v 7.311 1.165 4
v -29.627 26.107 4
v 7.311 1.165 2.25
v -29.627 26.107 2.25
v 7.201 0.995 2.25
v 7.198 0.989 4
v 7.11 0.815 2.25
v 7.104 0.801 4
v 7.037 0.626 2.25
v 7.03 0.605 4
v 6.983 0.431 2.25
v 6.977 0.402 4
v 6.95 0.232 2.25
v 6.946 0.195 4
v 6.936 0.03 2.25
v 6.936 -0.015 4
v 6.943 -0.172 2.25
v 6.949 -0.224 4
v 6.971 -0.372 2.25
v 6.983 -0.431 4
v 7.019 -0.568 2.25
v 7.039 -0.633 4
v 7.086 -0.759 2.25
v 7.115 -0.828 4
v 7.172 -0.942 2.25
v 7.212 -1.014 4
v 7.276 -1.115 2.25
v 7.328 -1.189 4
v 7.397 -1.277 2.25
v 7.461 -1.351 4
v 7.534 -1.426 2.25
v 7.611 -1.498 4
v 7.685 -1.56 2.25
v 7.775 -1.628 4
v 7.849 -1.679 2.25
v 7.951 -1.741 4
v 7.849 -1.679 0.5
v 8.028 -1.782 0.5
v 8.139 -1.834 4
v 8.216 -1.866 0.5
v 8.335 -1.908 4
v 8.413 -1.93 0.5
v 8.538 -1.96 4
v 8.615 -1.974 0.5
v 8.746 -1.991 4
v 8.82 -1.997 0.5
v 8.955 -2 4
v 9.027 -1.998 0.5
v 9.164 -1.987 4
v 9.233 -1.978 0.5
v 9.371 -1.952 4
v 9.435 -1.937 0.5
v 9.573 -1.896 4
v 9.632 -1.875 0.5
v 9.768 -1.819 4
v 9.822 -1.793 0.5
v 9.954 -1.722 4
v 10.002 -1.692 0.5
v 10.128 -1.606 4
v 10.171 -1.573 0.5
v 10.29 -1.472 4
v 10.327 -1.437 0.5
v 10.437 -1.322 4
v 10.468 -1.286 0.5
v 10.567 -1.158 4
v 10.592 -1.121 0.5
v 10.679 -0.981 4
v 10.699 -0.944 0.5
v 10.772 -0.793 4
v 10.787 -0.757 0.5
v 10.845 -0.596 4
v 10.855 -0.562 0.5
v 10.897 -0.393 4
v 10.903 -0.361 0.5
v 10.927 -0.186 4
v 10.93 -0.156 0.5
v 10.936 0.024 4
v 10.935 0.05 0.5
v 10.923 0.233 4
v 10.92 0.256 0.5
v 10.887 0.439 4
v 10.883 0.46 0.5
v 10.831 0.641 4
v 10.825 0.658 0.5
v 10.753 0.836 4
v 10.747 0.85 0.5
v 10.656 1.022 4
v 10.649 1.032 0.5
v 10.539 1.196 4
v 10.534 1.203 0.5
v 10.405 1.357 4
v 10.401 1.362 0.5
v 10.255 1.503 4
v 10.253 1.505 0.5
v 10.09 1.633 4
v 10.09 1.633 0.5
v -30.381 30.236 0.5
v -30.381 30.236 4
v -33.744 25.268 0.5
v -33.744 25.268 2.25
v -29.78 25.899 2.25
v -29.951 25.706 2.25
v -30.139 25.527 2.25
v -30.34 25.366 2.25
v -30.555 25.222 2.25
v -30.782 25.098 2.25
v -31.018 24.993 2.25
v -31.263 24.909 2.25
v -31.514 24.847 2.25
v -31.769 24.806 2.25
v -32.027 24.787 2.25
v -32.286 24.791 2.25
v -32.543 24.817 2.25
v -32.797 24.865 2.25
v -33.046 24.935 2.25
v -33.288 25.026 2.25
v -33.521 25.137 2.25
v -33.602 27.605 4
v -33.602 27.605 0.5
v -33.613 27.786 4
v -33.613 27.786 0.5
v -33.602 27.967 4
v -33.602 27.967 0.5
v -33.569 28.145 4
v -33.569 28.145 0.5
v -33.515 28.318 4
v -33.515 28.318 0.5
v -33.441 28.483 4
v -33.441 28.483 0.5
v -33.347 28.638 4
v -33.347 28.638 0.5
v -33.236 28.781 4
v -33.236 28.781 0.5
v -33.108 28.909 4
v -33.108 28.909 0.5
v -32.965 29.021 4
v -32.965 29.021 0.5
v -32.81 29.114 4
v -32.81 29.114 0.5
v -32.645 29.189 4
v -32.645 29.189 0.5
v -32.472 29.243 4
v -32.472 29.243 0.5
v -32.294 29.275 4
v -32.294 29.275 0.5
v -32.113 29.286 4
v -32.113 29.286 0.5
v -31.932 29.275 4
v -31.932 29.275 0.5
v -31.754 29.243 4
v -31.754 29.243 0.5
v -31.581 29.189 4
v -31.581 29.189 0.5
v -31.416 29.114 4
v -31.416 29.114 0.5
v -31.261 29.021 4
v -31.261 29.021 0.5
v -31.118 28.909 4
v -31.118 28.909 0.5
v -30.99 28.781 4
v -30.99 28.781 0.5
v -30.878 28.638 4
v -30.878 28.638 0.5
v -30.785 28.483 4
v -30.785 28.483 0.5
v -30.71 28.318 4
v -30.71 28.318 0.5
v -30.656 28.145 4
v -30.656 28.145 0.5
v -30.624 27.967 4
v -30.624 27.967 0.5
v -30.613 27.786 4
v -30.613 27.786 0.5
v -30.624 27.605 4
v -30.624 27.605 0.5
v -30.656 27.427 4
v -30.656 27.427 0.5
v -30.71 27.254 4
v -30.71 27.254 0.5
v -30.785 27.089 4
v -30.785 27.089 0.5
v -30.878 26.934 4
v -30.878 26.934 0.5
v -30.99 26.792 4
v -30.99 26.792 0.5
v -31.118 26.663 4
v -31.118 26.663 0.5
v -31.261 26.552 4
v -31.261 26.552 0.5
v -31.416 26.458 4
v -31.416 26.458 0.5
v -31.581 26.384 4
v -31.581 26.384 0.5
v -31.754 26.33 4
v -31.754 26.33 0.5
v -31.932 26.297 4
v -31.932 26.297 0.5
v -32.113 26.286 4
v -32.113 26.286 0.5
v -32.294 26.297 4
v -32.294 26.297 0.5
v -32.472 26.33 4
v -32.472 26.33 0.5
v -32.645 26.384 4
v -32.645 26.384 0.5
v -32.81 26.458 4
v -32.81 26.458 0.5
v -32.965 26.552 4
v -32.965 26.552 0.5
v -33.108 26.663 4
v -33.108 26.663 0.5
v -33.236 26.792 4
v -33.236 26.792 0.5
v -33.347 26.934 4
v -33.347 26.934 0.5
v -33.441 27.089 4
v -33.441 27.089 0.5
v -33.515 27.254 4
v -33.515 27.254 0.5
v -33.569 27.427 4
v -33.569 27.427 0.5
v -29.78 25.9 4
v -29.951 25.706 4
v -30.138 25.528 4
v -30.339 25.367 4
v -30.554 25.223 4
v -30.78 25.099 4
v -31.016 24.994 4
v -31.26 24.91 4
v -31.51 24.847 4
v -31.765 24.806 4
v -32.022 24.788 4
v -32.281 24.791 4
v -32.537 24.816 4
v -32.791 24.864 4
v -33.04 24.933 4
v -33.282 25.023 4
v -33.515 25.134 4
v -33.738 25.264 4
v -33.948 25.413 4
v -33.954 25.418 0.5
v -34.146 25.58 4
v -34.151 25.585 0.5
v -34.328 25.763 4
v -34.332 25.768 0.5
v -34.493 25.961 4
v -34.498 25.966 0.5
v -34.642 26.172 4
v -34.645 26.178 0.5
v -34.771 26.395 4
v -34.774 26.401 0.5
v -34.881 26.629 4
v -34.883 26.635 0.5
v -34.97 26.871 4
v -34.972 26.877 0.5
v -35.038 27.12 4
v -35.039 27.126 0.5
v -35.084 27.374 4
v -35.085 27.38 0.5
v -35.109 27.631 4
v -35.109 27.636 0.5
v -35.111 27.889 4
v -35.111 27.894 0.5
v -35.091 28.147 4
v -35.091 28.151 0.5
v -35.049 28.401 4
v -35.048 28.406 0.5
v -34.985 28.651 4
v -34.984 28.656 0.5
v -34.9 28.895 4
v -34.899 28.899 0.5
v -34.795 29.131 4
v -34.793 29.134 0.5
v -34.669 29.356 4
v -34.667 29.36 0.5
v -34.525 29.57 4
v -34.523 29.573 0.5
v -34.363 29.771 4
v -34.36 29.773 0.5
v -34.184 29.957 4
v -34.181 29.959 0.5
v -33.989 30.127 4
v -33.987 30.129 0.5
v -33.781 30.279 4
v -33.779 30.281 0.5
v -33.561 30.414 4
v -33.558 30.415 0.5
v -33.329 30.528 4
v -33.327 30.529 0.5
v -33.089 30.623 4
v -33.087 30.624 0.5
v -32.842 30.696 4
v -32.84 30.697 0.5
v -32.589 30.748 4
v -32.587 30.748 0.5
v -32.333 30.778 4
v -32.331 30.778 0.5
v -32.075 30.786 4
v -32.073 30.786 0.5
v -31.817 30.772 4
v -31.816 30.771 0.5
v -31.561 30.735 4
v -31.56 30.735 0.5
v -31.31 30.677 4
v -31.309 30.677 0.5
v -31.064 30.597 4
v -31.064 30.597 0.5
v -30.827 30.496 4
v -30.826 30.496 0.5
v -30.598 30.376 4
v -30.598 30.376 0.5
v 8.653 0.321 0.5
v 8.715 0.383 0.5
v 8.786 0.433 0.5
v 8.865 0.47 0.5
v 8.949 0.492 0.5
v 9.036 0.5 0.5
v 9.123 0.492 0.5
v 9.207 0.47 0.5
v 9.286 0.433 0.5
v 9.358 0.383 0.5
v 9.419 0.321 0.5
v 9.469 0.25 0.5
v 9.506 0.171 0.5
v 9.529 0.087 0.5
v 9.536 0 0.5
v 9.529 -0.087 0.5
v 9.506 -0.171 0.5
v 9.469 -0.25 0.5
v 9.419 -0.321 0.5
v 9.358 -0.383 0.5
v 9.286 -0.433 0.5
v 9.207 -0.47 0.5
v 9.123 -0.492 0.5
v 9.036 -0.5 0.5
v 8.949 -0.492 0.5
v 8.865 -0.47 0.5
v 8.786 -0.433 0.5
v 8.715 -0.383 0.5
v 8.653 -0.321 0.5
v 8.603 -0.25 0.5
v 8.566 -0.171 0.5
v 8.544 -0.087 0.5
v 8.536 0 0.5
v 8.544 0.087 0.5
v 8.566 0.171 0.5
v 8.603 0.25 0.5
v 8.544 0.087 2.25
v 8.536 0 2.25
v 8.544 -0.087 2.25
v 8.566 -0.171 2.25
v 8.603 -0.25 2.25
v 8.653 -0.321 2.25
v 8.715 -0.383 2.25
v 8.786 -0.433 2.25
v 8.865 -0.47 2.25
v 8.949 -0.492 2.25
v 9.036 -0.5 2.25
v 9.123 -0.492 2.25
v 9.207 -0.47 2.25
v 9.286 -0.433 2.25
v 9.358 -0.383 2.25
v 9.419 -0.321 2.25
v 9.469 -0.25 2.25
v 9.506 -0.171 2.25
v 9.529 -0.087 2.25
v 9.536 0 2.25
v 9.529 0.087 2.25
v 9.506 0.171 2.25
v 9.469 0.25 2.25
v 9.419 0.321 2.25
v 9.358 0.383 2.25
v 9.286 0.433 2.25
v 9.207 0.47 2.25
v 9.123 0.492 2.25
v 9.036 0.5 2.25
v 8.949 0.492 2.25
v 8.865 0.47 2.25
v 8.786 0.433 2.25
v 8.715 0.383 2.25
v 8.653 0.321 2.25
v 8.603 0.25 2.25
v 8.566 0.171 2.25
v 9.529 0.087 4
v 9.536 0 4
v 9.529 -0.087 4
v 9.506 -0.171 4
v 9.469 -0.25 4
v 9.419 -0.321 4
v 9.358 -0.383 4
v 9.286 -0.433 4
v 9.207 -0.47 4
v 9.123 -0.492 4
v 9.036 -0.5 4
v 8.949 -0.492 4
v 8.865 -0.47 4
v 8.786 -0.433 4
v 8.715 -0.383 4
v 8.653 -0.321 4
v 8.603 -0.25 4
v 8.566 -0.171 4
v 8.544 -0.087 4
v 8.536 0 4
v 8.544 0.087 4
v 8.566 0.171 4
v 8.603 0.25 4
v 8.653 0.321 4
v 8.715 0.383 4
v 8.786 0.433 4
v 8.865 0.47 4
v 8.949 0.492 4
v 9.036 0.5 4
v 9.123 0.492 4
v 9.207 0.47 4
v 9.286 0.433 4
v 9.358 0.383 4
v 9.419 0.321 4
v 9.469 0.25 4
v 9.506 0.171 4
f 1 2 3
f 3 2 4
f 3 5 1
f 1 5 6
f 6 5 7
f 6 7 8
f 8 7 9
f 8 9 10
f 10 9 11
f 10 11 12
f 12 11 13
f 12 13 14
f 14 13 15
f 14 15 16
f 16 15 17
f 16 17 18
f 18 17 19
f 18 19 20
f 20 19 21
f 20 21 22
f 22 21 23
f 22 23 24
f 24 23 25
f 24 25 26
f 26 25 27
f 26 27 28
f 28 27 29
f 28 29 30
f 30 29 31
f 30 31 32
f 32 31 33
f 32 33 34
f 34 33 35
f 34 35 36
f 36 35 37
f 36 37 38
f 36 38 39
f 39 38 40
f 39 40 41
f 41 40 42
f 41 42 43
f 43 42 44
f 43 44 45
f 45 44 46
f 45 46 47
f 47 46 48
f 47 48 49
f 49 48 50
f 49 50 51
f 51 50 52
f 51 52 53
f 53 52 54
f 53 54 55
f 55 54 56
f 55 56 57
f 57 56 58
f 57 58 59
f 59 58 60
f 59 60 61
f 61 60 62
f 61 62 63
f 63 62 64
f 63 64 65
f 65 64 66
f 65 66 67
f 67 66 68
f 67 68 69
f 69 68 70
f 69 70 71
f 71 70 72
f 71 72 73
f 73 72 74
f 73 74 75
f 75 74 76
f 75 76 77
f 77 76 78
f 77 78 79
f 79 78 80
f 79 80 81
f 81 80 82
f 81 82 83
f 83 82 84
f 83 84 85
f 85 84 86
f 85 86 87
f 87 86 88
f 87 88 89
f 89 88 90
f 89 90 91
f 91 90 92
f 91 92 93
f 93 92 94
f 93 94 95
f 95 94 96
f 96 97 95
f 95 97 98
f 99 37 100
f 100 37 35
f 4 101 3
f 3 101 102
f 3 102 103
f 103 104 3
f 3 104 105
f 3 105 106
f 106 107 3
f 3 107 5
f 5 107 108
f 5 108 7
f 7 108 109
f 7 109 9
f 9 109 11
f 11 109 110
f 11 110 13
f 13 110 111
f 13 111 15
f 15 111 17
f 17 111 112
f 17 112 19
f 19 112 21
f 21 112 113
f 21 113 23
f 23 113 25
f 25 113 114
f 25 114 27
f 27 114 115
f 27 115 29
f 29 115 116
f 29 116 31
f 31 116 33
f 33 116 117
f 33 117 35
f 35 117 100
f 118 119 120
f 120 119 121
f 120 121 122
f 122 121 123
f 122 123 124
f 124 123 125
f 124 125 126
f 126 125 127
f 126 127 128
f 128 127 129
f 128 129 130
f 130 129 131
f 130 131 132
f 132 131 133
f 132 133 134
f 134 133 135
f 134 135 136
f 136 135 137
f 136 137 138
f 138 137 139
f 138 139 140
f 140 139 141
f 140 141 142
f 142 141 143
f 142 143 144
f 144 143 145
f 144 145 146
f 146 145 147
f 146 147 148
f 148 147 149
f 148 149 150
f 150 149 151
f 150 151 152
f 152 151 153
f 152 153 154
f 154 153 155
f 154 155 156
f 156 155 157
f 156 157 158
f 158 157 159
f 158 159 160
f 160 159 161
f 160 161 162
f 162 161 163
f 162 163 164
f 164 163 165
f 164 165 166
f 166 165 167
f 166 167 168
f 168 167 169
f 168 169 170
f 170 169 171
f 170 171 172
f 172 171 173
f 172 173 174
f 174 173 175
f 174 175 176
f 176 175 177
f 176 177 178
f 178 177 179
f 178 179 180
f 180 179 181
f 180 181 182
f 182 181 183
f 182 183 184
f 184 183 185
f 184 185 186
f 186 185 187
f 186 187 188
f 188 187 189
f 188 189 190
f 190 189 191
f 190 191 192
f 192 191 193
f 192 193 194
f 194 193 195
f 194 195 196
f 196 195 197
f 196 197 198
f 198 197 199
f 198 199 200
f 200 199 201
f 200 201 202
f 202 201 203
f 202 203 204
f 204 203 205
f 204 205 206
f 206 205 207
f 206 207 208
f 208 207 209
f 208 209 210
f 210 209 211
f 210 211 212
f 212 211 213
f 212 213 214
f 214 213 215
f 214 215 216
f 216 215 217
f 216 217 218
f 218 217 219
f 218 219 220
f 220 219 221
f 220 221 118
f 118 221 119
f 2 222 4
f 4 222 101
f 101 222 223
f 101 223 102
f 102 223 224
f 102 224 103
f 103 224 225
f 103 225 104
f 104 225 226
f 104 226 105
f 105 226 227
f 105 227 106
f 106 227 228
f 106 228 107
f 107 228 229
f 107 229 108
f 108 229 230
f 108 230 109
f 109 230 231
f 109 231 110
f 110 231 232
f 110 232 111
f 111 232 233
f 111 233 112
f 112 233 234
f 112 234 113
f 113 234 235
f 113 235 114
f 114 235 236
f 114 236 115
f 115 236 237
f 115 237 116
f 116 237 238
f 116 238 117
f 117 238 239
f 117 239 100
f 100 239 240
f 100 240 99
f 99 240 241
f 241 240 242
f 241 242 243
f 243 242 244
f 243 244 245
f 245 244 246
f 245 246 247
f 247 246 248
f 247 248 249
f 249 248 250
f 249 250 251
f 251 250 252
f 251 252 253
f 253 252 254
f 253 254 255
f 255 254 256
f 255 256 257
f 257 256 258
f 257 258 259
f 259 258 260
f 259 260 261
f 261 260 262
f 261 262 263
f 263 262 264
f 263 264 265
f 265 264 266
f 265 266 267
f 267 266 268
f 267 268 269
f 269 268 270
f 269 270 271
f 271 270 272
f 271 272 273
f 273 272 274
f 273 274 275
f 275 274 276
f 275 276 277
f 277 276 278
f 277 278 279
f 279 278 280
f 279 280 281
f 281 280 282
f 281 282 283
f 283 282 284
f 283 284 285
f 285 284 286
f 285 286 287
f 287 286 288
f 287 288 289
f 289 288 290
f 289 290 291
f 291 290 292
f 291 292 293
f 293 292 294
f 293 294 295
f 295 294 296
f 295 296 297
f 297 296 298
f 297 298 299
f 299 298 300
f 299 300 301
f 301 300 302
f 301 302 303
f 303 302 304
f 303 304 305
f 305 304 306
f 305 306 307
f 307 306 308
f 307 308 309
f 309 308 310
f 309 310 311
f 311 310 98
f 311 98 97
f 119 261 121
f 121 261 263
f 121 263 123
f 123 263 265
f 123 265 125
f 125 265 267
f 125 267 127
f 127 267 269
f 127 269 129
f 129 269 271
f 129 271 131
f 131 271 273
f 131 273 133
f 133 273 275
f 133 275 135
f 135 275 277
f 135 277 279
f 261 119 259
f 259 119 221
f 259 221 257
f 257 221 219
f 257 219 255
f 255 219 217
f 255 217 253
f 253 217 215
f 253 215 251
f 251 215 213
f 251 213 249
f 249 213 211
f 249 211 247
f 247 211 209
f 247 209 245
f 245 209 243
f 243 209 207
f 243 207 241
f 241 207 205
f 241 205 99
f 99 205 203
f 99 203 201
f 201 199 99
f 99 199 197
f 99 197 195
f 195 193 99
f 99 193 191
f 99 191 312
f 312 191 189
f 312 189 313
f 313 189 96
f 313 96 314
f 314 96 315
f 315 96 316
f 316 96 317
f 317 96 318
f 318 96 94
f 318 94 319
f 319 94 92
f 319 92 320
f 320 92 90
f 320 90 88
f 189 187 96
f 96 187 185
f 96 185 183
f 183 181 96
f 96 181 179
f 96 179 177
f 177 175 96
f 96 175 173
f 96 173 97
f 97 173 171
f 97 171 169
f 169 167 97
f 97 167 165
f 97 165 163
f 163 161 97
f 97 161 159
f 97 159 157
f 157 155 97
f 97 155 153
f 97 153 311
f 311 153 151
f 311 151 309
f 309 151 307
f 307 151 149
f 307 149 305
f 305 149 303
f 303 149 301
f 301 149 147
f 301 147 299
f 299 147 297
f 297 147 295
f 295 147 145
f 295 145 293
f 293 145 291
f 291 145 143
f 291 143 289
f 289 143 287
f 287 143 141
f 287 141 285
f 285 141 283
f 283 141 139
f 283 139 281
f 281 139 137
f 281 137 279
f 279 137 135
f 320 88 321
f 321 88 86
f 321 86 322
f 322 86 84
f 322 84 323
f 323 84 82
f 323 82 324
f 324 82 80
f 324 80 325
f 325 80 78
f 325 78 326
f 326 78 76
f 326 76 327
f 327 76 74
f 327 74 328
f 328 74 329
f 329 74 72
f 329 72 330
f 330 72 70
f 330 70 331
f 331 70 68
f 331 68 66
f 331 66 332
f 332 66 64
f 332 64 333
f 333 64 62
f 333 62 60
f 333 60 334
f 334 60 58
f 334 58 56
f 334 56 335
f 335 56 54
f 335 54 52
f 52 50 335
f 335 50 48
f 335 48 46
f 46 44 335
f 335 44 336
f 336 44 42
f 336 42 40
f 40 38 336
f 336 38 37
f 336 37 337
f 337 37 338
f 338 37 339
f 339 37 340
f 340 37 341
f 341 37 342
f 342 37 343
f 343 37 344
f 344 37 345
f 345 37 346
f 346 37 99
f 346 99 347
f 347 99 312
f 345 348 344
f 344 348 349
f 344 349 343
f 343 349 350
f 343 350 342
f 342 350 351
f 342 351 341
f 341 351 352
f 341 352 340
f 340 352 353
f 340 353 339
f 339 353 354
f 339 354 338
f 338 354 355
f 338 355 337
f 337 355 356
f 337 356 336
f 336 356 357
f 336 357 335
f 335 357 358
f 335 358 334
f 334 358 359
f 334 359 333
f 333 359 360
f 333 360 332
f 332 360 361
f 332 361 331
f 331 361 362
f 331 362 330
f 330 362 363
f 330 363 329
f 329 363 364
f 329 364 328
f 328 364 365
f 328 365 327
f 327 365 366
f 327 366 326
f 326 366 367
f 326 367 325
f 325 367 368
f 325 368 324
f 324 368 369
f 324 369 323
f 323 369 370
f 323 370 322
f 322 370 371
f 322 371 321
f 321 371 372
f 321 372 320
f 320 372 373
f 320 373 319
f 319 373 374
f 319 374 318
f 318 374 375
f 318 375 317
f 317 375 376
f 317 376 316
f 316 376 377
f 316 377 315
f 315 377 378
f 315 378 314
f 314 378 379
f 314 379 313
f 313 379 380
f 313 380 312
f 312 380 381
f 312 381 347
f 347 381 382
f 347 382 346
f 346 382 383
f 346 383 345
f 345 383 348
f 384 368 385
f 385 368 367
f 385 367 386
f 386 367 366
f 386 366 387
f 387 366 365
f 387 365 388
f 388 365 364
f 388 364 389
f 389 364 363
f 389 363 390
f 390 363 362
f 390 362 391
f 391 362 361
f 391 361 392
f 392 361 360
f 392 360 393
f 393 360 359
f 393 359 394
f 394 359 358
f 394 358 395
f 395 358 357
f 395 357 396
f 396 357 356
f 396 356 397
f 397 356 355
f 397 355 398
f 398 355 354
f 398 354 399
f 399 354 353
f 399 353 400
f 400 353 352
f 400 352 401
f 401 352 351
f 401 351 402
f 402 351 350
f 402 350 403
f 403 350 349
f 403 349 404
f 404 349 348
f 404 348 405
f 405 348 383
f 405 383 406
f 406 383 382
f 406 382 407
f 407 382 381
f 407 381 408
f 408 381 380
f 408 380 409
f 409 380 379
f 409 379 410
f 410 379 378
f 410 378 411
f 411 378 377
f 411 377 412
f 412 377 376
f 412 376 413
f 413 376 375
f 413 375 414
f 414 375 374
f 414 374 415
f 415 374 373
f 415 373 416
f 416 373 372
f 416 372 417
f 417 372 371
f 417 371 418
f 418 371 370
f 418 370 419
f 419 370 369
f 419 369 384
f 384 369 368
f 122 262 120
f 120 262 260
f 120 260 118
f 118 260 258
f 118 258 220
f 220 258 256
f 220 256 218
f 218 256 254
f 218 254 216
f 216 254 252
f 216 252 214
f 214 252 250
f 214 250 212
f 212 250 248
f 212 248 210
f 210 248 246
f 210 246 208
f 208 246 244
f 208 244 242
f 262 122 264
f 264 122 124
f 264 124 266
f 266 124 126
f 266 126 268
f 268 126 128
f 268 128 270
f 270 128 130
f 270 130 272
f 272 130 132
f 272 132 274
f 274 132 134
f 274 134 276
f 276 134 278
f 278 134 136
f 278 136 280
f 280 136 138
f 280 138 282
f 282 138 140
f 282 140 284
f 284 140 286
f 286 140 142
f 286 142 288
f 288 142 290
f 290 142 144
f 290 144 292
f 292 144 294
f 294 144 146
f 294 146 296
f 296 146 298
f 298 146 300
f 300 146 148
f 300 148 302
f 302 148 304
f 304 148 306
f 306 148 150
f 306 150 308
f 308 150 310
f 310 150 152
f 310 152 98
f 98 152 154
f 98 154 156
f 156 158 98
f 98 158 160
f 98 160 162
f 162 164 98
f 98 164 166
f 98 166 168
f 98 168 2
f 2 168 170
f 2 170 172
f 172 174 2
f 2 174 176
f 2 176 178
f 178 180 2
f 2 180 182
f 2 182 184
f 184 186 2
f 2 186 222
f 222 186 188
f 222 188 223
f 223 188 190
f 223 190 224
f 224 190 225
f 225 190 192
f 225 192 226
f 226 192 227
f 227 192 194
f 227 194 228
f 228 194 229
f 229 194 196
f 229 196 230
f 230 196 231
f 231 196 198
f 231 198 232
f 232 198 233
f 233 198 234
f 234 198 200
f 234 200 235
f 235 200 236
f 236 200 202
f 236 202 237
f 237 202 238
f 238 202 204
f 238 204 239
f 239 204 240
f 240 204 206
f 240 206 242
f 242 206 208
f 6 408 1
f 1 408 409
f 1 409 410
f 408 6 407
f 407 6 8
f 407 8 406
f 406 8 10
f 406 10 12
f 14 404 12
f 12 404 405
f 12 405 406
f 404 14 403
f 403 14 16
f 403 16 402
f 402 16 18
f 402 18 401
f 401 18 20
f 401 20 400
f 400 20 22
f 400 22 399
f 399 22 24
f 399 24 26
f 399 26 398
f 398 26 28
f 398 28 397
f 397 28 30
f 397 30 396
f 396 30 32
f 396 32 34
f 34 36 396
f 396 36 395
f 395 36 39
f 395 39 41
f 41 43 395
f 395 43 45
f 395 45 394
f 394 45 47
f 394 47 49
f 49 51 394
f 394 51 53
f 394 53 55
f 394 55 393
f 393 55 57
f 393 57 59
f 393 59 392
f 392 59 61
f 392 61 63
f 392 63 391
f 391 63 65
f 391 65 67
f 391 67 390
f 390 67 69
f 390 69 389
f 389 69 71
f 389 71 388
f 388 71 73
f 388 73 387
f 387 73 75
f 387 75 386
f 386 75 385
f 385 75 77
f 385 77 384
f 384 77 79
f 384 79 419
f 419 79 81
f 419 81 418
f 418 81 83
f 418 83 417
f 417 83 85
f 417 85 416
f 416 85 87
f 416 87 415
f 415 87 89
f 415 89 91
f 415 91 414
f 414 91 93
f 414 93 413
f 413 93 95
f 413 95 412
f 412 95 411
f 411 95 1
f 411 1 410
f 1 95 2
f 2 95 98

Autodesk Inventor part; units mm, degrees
ref_plane "YZ Plane" through (0, 0, 0) normal (1, 0, 0) x (0, 1, 0)
ref_plane "XZ Plane" through (0, 0, 0) normal (0, 1, 0) x (-1, 0, 0)
ref_plane "XY Plane" through (0, 0, 0) normal (0, 0, 1) x (1, 0, 0)
sketch "Sketch1" plane through (0, 0, 0) normal (0, 0, 1) x (1, 0, 0)
  circle A0 centre (9.0361, 0) radius 0.5 projected
  arc A1 (9.1111, -1.9923) -> (9.1111, 1.9923) centre (8.9361, 0) ccw projected
  circle A2 centre (8.9361, 0) radius 2
  point P0 (0, 0)
  point P1 (9.1111, 1.9923)
  point P2 (9.1111, -1.9923)
extrude "Extrusion1" add sketch "Sketch1" along normal blind 4
sketch "Sketch2" plane through (8.9361, 0, 0) normal (0, 0, -1) x (-1, 0, 0)
  circle A0 centre (0, 0) radius 2 projected
  circle A1 centre (-0.1, 0) radius 0.5 projected
  point P0 (8.9361, 0)
extrude "Extrusion2" cut sketch "Sketch2" against normal blind 0.5
sketch "Sketch3" plane through (8.9361, 0, 0.5) normal (0, 0, -1) x (-1, 0, 0)
  circle A0 centre (34.6774, 22.9773) radius 1.5 projected
  arc A1 (36.9746, 24.9067) -> (34.2673, 20.0054) centre (34.6774, 22.9773) ccw projected
  circle A2 centre (34.6774, 22.9773) radius 3
  circle A3 centre (41.0489, 27.7862) radius 1.5 projected
  circle A4 centre (41.0489, 27.7862) radius 3
  point P0 (8.9361, 0)
  point P1 (34.2673, 20.0054)
  dimension "d11" = 3
  dimension "d12" = 6
extrude "Extrusion3" add sketch "Sketch3" against normal up to surface (3.5 mm away) contours A4
sketch "Sketch6" plane through (8.9361, 0, 0.5) normal (0, 0, -1) x (-1, 0, 0)
  circle A0 centre (41.0489, 27.7862) radius 3 projected
  circle A1 centre (41.0489, 27.7862) radius 1.5 projected
  circle A2 centre (0, 0) radius 2 projected
  circle A3 centre (-0.1, 0) radius 0.5 projected
  line L0 (-1.1543, 1.6333) -> (39.3175, 30.2361)
  line L1 (1.0875, -1.6785) -> (42.6801, 25.2684)
  point P0 (8.9361, 0)
extrude "Extrusion6" add sketch "Sketch6" against normal blind 1.75 contours A0 L1 A2 L0
sketch "Sketch7" plane through (8.9361, 0, 2.25) normal (0, 0, 1) x (1, 0, 0)
  line L0 (1.1543, 1.6333) -> (-39.3175, 30.2361) projected
  circle A0 centre (-41.0489, 27.7862) radius 3 projected
  circle A1 centre (0, 0) radius 2 projected
  circle A2 centre (0.1, 0) radius 0.5 projected
  line L1 (0.1, 0) -> (-41.0489, 27.7862)
  point P0 (-8.9361, 0)
  point P1 (-38.5627, 26.1073)
  point P2 (-1.6255, 1.1652)
extrude "Extrusion7" add sketch "Sketch7" along normal up to surface (1.75 mm away) contours A1 L1 A0 L0
properties part number "ServoShaft_3DPrint"
